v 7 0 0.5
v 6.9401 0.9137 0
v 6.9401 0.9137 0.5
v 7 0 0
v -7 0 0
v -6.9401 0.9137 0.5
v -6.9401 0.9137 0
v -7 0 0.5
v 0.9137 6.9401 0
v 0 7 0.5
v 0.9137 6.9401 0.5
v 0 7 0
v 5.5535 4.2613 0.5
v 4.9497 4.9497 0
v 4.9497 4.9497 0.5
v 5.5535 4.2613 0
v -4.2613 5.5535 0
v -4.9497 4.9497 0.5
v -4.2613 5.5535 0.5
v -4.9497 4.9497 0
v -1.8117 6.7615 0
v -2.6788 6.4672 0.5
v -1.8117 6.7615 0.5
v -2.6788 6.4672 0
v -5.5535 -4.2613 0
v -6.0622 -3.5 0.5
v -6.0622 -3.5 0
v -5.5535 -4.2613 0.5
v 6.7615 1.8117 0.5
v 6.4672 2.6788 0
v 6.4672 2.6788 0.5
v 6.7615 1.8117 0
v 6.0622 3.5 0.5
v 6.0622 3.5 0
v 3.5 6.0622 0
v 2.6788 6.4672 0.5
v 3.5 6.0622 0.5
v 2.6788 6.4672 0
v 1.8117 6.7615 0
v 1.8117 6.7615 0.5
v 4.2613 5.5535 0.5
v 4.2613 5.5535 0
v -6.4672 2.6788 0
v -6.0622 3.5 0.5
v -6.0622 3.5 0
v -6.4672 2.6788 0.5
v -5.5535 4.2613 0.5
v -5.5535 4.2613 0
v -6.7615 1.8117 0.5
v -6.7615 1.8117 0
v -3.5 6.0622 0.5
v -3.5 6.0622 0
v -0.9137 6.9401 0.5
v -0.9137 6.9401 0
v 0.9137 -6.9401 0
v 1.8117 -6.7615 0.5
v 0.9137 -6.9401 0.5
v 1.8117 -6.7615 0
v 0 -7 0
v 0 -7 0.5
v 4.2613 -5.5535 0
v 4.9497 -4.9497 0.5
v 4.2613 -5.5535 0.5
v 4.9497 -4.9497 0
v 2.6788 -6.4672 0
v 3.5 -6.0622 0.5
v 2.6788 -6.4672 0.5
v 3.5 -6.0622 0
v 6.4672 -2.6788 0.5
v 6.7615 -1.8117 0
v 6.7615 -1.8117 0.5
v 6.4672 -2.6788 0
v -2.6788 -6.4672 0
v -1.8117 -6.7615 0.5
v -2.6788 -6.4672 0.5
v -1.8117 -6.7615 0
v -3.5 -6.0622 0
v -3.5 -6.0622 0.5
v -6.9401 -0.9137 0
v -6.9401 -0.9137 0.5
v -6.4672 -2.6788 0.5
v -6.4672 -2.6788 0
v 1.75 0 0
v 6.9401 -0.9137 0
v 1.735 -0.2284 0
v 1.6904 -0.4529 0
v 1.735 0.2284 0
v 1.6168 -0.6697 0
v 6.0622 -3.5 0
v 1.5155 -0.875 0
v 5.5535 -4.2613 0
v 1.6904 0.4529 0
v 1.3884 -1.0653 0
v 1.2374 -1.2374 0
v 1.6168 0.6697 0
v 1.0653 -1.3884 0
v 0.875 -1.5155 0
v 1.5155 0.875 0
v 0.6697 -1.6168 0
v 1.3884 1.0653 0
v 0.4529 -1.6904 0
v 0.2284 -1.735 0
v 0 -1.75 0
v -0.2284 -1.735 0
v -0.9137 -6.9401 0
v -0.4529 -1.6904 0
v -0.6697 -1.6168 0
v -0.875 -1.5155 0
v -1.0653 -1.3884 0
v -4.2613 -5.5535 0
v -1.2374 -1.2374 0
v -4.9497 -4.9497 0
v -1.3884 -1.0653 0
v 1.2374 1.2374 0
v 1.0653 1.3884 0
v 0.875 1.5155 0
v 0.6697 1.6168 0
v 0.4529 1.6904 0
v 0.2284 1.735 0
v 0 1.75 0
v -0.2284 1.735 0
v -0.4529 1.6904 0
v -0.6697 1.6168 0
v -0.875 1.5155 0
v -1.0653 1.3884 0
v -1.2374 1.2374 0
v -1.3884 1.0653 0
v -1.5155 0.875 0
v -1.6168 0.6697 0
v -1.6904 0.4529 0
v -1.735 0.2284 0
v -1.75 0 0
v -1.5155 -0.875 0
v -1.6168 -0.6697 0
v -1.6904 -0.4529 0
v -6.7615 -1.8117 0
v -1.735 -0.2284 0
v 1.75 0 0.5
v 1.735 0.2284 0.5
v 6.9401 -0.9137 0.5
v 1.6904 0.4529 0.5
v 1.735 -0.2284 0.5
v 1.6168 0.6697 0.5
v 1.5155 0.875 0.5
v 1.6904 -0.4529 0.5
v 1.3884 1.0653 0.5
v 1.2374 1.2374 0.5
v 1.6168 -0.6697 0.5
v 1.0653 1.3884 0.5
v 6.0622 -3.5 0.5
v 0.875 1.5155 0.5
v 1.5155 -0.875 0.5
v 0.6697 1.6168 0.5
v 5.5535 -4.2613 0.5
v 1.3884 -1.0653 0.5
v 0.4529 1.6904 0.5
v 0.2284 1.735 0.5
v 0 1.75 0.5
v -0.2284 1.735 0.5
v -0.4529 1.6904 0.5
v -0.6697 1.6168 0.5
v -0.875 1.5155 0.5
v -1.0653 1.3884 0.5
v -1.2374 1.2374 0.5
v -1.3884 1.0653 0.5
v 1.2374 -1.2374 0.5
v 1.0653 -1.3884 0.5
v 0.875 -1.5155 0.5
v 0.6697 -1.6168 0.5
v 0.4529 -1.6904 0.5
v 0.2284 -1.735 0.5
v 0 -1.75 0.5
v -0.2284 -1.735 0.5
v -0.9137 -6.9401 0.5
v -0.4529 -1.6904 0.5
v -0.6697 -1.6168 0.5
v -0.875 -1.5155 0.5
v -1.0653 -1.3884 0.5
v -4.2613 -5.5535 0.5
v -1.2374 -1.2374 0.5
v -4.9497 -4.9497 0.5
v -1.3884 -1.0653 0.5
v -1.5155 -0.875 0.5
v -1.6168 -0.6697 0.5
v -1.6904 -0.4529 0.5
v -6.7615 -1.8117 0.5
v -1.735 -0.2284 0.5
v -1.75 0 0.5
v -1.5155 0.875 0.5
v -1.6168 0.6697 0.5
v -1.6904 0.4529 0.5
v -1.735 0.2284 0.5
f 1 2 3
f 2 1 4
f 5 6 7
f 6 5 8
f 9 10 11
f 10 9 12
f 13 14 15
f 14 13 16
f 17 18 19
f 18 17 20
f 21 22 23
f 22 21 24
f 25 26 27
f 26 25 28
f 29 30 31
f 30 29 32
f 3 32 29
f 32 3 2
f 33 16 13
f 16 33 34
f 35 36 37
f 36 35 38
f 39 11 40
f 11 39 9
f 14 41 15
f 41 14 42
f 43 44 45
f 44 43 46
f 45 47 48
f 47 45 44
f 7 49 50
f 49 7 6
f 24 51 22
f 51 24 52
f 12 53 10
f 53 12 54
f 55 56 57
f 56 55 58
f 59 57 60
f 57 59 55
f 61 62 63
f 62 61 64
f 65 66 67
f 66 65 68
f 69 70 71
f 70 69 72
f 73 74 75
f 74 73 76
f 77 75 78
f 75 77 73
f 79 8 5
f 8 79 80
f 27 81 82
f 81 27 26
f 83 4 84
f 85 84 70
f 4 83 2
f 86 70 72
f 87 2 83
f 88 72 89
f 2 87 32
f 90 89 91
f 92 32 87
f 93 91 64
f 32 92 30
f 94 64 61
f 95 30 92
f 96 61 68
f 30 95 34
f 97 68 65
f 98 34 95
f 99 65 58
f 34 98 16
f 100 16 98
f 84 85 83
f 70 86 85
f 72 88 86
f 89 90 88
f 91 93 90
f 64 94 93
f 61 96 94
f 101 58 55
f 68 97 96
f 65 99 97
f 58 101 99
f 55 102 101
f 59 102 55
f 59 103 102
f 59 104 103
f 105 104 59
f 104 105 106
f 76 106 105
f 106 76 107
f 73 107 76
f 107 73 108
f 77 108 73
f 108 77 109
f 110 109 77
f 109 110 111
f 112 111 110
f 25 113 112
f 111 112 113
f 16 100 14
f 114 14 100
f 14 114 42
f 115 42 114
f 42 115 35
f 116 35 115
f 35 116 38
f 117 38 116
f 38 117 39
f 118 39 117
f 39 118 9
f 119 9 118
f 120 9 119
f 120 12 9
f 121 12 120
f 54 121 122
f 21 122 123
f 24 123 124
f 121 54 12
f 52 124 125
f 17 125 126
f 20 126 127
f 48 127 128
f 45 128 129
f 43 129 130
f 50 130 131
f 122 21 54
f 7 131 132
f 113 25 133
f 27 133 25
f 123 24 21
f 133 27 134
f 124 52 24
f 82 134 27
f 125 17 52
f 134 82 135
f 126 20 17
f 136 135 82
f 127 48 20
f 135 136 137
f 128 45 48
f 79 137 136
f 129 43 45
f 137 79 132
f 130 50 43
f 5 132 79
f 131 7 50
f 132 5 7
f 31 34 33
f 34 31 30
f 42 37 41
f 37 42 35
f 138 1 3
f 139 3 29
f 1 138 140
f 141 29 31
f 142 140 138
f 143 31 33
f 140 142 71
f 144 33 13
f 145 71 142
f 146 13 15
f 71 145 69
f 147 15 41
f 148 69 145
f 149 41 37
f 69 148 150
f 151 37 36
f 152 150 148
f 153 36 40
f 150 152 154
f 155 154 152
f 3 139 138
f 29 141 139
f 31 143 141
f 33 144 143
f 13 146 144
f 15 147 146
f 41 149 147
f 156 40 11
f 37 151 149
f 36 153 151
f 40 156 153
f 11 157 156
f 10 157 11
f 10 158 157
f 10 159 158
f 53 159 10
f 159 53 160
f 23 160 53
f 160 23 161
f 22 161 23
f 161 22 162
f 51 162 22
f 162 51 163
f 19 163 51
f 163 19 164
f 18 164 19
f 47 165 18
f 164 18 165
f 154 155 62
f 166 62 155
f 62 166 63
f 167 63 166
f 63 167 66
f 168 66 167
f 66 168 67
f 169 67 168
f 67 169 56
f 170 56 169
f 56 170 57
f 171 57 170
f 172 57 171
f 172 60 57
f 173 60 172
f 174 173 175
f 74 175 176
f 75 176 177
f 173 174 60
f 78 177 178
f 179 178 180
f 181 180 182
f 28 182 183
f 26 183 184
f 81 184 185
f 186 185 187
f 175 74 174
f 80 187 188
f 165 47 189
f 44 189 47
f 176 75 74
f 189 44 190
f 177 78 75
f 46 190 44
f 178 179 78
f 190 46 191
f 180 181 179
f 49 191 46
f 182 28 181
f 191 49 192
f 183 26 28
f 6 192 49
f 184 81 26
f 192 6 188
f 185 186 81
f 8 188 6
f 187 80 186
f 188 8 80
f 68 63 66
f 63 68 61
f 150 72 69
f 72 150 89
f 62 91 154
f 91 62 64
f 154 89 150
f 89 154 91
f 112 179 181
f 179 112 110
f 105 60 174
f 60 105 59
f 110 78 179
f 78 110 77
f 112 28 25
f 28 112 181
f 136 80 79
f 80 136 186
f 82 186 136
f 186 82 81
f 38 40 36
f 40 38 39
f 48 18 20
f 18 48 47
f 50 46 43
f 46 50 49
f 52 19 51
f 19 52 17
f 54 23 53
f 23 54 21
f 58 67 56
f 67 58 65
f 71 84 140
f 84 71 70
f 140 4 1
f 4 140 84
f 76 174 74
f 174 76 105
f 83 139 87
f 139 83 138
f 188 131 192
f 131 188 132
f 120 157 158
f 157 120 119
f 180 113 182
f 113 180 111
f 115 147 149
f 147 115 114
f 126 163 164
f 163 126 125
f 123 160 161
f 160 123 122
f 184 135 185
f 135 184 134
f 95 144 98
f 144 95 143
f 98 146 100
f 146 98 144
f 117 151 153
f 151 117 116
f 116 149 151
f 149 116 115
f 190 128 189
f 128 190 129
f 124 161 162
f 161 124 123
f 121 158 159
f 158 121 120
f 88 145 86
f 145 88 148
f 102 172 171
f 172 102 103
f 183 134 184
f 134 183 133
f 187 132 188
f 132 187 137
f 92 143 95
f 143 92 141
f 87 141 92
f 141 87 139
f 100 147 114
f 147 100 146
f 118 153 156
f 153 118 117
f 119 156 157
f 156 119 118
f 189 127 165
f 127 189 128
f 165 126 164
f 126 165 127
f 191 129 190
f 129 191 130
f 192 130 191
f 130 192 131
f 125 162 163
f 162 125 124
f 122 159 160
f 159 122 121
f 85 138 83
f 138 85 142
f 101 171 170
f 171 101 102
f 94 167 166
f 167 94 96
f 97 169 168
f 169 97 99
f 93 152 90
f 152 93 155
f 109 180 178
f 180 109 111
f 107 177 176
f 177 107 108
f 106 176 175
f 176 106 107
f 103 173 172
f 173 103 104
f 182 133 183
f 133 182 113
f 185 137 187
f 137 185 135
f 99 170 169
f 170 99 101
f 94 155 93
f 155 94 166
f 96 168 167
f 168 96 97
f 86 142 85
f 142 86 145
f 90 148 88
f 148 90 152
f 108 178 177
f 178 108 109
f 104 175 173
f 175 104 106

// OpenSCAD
// file: parameters.scad
// =============================================================================
// Gen-BH — nightly 2026-10-04 (physics_scorer, honest magpylib watts)
// All 16 O20 magnets used as 8 double-height (10 mm) poles: 4-pole / 6-coil dual rotor on 3 mm steel, tall 9.9 mm copper; O5 assists left out because the scorer shows they do not help this pole layout.
// Clocking 0 deg (magnets N facing S) + D-flat keyed bore + index notch + flip-symmetric hole map.
// Windable 2-piece bobbin; turns = physics_scorer turns_fit; copper only between flanges.
// Steel back-iron: two 3.0 mm mild-steel discs (steel_backiron_disc.dxf); magnets sit ON the steel
// (through-pockets) -> score with --back-iron.
// =============================================================================
topology            = "dual_rotor";

// --- Wire / winding (physics_scorer winding-fit) -------------------------------
wire_awg            = 26;
wire_od             = 0.45;     // insulated OD mm (bare 0.405)
fill_realistic      = 0.60;     // insulated-wire area / window, hand-wound layered
turns               = 571;       // = physics_scorer turns_fit (do NOT raise)
coil_former_type    = "bobbin";
coil_core_inset     = 15.30;     // radial copper build: hub = copper boundary inset by this
wind_build_axial    = 0.0;      // nothing proud of the flanges
wind_build_radial   = 0.0;

// --- Bobbin (base + lid) ---------------------------------------------------------
coil_id_r           = 22.00;    // copper boundary sector
coil_od_r           = 62.00;
span_deg            = 50.35;    // = pitch - 2*asin((wall+0.85)/coil_id_r) -> >=1.2 mm stator web
former_web          = 9.90;     // copper height between flanges (TALL copper: steel keeps Bz up)
flange_t            = 0.80;     // >= 0.8 mm FDM wall rule (tall winds push on the flanges)
wall                = 1.00;     // flange lip beyond copper
former_bare_h       = former_web + 2 * flange_t;
coil_envelope_h     = former_bare_h + 2 * wind_build_axial;
tab_w               = 7.0;
tab_len             = 7.0;
tab_h               = former_bare_h / 2;
pin_d               = 1.9;      // 1.75 mm filament locating pin
coil_mount_r        = coil_od_r + 0.2 + 4.0;
lead_y              = 1.6;
lead_slot_w         = 0.9;
lead_groove_d       = 0.6;

// --- Gap -------------------------------------------------------------------------
run_clear           = 0.50;     // rotor face -> flange
gap_spacer_h        = run_clear + wind_build_axial;
m2m                 = coil_envelope_h + 2 * run_clear;   // rotor face to rotor face (= gap_sleeve length)

// --- Stator ----------------------------------------------------------------------
coil_stations       = 6;
bay_clear           = 0.25;
stator_thick        = former_bare_h;                        // bobbins flush both faces
stator_od           = 148.0;
shaft_clear_stator  = 14.0;     // stator is static; gap sleeve OD 12 spins inside

// --- Rotor(s) --------------------------------------------------------------------
magnet_Br           = 1.43;     // N52
magnet_d_large      = 20.0;
magnet_h_large      = 10.0;      // two O20x5 stacked per pocket
magnet_h_small      = 10.0;      // two O5x5 stacked per pocket
halbach_magnetisation = "none";  // NO O5 assist magnets in this kit (scorer: they do not help 4-pole)
rotor_b_same_axis   = true;     // same-index magnets share one axis: N faces S across the gap
large_pocket_d      = 20.3;
small_pocket_d      = 5.3;
pocket_h            = 10.10;     // THROUGH the carrier: magnet back face sits on the steel disc
large_n             = 4;
R_large             = 44.0;
small_r_list        = [];       // no O5 pockets
carrier_od          = 126.0;
carrier_thick       = pocket_h;
hub_h               = 10.0;
hub_od              = 24.0;     // slim hub so the M4 brace rods fit at R~18 inside the coil ring
hub_insert_d        = 4.0;      // M3 heat-set insert, radial, bears on the D-flat
rotor_b_offset_deg  = 0.0;      // CLOCKING: magnets directly opposite
shaft_key           = "dflat";
dflat_depth         = 0.5;      // 8 mm shaft with 0.5 mm flat (7.5 across flat)
index_notch_d       = 3.0;

// --- Steel back-iron (buyable laser-cut) -------------------------------------------
steel_t             = 3.0;      // mild steel thickness (not modelled by the image method; >=3 avoids saturation)
steel_center_hole   = 26.0;     // slips over the rotor hub (OD 24)

// --- Modular MAX interface ----------------------------------------------------------
shaft_bore          = 8.35;
dflat_x             = 4.0 - dflat_depth + (shaft_bore - 8.0) / 2;
bearing_d           = 21.85;
bearing_h           = 7.2;
m3_clear            = 3.5;
bolt_r_inner        = 27.0;     // M3 steel-disc clamp bolts (inside the magnet ring)
bolt_n_inner        = 4;
bolt_inner_angles   = [45, 135, 225, 315];
bolt_r_outer        = 58.0;     // M3 steel-disc clamp bolts (outside the magnet ring)
bolt_outer_angles   = [45, 135, 225, 315];
flange_bolt_r       = 69.0;     // frame rods: OUTSIDE the rotor OD (rotors spin inside them)
flange_bolt_n       = 6;
flange_bolt_offset  = 30.00;    // between coil stations -> never cuts a lead groove/tab
brace_r             = 17.5;
brace_d             = 4.3;      // temporary M4 jack rods (assembly only)
brace_n             = 4;
brace_angles        = [0, 90, 180, 270];          // flip-symmetric

spacer_pad_od       = 14.0;
spacer_pad_id       = m3_clear;
endbell_od          = 148.0;
endbell_thick       = 8.0;
endbell_shaft_clear = 10.0;
collar_h            = 10.0;
standoff_od         = 9.0;
frame_standoff_h    = run_clear + carrier_thick + hub_h + collar_h + 2.0;
sleeve_od           = 12.0;
plate_max_mm        = 410;

$fn = 64;
// main file
// Gen-BH — assembly gap shim, h = run_clear (rotor face -> flange); copper is inside the flanges
include <parameters.scad>;
$fn = 48;
difference() {
    cylinder(d=spacer_pad_od, h=gap_spacer_h);
    translate([0, 0, -0.1]) cylinder(d=spacer_pad_id, h=gap_spacer_h + 0.2);
}
